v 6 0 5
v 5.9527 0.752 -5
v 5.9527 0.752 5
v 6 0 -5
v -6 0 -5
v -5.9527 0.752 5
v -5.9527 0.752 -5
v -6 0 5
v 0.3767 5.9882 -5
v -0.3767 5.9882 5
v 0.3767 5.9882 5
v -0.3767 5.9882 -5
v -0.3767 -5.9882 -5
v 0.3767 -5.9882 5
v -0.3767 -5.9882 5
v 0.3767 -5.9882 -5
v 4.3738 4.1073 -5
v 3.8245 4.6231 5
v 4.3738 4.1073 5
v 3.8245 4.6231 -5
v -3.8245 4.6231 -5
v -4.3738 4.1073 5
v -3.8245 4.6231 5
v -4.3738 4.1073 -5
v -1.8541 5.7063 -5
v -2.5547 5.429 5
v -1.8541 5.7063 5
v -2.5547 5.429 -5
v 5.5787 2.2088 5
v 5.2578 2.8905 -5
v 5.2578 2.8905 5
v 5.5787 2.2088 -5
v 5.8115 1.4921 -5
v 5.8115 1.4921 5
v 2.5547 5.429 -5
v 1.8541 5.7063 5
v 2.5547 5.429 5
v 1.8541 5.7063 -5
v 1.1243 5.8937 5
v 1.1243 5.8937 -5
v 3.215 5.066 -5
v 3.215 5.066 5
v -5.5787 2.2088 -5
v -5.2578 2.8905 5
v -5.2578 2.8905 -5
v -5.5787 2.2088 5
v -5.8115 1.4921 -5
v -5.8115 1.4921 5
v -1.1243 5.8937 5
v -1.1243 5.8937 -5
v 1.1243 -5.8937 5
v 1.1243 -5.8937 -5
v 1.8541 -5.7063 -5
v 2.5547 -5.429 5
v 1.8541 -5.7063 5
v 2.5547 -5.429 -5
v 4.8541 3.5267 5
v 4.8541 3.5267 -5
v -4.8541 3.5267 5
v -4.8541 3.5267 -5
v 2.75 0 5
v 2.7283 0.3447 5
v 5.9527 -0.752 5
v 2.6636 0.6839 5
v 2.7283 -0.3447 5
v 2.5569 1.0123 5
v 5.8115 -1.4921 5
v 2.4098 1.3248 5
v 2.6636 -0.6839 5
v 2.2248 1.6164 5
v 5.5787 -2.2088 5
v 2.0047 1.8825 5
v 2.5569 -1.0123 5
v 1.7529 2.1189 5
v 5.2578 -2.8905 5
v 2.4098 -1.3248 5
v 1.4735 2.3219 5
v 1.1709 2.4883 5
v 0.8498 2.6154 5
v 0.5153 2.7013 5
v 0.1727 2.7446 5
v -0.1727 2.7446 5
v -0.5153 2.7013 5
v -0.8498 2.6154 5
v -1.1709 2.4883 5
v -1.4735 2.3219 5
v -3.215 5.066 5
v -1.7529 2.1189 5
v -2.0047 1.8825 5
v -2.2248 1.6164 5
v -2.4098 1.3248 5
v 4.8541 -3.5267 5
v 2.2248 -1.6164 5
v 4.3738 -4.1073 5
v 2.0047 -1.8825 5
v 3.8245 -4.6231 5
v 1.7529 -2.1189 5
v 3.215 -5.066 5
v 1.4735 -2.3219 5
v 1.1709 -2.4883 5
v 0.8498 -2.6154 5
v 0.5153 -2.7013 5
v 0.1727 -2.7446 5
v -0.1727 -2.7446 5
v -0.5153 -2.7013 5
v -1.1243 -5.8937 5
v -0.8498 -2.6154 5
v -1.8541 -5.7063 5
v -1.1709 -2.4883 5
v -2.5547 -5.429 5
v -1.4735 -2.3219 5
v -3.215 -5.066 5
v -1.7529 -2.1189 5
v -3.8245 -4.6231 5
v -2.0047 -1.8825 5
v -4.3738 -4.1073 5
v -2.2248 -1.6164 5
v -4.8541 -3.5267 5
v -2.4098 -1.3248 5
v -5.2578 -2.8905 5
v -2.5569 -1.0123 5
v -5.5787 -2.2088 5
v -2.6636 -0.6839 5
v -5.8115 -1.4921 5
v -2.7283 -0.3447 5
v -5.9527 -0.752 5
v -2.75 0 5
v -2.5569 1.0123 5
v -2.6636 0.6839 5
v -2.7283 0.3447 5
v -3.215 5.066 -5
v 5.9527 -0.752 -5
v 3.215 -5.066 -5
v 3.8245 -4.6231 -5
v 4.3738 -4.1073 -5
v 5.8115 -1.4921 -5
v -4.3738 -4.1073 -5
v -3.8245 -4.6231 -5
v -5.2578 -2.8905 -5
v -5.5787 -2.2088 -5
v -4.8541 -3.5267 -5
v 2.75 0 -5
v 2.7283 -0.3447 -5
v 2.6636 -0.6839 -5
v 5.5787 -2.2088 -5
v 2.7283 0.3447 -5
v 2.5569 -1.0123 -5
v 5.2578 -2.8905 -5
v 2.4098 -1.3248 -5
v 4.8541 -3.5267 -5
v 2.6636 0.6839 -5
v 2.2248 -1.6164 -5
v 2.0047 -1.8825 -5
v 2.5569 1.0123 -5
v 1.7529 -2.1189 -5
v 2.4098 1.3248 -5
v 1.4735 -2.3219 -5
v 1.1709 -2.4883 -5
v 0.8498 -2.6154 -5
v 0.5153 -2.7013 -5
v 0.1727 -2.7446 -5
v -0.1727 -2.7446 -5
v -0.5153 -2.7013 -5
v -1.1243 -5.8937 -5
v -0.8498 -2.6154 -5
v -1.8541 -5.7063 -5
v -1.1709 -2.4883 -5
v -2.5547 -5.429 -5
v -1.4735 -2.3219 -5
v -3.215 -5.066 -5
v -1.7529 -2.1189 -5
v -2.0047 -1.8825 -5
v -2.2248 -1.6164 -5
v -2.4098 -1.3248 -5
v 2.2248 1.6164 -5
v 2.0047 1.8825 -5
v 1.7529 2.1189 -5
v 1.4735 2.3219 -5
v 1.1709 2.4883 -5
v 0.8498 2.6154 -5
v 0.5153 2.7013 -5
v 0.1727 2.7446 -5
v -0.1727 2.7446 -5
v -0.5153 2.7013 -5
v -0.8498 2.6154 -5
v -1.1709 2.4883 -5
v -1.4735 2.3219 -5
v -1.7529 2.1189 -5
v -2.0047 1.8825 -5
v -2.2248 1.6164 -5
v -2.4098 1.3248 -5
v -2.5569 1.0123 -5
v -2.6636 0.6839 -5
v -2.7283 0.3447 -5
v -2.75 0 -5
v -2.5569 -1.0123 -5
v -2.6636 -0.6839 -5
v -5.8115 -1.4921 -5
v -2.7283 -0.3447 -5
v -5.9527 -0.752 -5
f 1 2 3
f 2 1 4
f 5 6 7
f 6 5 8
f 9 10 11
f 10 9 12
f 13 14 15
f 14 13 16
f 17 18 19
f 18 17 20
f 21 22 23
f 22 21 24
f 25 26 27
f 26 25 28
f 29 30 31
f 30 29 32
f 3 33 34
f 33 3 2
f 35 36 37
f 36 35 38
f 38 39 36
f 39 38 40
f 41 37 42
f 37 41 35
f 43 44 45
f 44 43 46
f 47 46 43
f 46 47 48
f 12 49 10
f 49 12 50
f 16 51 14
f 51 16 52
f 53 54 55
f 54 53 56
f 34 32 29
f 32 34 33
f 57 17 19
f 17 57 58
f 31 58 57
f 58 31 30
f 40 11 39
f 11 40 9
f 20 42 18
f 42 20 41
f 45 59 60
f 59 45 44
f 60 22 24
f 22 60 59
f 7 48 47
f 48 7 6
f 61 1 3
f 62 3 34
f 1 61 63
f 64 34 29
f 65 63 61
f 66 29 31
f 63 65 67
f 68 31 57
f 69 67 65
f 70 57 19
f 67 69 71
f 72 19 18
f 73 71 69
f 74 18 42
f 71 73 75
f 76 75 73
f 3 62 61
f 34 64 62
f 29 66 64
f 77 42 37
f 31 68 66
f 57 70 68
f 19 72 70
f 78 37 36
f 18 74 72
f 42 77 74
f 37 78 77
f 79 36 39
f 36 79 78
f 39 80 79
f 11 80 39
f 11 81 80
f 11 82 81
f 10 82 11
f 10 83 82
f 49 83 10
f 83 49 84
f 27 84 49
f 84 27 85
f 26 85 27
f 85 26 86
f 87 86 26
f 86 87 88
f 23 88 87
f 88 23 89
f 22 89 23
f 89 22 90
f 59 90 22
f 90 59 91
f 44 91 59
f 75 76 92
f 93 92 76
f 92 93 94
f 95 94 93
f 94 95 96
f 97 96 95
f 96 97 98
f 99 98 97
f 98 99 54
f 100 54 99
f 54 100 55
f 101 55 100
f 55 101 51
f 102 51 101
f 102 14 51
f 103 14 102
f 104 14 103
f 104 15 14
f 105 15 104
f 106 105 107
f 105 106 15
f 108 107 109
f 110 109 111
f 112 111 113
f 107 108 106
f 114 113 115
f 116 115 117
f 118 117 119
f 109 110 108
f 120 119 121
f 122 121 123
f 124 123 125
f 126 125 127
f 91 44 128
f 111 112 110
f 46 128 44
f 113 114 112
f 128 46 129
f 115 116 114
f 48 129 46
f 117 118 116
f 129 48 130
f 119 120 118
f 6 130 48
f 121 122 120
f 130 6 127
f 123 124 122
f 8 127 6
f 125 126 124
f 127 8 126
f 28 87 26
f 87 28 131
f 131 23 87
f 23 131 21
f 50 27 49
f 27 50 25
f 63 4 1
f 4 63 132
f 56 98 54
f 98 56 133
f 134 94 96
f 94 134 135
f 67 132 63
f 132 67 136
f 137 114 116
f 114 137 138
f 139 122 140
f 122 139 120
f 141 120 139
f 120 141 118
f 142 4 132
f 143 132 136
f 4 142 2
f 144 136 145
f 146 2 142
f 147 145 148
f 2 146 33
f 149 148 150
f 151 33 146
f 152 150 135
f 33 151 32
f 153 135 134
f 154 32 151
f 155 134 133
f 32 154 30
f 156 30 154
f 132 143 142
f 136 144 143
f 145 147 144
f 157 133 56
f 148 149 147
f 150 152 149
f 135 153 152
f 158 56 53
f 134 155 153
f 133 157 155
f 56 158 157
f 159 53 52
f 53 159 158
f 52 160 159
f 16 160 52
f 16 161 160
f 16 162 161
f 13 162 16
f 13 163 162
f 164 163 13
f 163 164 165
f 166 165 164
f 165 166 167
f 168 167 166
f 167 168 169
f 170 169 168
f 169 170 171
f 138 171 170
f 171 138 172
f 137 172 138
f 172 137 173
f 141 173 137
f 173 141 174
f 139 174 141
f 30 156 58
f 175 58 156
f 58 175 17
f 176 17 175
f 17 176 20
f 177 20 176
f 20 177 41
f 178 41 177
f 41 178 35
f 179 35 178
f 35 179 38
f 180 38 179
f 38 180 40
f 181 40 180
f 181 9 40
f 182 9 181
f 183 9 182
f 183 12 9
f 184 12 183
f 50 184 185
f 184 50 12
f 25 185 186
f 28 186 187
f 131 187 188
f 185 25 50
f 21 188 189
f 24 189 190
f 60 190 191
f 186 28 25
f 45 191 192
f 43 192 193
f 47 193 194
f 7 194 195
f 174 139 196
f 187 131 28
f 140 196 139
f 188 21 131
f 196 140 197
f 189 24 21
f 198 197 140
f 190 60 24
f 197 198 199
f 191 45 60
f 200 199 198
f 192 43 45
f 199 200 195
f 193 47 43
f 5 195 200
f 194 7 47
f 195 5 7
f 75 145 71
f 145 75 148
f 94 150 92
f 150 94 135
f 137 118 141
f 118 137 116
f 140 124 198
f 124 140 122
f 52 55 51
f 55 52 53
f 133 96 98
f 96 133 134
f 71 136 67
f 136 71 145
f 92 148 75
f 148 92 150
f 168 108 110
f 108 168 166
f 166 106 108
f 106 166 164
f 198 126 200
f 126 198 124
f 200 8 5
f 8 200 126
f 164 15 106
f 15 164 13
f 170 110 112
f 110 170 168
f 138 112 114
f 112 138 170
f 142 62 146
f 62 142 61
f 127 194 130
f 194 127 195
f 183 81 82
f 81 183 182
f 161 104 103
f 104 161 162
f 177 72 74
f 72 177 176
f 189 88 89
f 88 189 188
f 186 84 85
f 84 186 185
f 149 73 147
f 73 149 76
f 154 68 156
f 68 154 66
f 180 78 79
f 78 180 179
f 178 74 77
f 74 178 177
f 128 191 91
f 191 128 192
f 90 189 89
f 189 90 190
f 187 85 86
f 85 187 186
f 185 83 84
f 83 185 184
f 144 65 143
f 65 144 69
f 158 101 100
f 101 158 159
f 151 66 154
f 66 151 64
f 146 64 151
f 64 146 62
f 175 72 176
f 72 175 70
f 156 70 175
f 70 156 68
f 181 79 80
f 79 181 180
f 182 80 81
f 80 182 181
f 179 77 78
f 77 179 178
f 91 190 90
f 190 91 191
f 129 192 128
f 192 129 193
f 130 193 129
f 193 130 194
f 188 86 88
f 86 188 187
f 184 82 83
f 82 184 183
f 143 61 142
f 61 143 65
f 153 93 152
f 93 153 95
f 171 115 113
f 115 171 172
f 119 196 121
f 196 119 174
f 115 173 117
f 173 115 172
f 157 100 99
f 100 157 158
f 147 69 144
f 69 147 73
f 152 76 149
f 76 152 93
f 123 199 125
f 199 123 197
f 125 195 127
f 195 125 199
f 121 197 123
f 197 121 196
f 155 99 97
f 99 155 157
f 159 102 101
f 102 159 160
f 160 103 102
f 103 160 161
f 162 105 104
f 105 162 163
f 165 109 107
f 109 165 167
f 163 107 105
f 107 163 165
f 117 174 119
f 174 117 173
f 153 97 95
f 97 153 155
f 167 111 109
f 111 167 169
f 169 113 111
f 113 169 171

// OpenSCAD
$fn = 50;


difference() {
	union() {
		translate(v = [0, 0, -5.0000000000]) {
			cylinder(h = 10, r = 6.0000000000);
		}
	}
	union() {
		translate(v = [0, 0, -100.0000000000]) {
			cylinder(h = 200, r = 2.7500000000);
		}
	}
}
